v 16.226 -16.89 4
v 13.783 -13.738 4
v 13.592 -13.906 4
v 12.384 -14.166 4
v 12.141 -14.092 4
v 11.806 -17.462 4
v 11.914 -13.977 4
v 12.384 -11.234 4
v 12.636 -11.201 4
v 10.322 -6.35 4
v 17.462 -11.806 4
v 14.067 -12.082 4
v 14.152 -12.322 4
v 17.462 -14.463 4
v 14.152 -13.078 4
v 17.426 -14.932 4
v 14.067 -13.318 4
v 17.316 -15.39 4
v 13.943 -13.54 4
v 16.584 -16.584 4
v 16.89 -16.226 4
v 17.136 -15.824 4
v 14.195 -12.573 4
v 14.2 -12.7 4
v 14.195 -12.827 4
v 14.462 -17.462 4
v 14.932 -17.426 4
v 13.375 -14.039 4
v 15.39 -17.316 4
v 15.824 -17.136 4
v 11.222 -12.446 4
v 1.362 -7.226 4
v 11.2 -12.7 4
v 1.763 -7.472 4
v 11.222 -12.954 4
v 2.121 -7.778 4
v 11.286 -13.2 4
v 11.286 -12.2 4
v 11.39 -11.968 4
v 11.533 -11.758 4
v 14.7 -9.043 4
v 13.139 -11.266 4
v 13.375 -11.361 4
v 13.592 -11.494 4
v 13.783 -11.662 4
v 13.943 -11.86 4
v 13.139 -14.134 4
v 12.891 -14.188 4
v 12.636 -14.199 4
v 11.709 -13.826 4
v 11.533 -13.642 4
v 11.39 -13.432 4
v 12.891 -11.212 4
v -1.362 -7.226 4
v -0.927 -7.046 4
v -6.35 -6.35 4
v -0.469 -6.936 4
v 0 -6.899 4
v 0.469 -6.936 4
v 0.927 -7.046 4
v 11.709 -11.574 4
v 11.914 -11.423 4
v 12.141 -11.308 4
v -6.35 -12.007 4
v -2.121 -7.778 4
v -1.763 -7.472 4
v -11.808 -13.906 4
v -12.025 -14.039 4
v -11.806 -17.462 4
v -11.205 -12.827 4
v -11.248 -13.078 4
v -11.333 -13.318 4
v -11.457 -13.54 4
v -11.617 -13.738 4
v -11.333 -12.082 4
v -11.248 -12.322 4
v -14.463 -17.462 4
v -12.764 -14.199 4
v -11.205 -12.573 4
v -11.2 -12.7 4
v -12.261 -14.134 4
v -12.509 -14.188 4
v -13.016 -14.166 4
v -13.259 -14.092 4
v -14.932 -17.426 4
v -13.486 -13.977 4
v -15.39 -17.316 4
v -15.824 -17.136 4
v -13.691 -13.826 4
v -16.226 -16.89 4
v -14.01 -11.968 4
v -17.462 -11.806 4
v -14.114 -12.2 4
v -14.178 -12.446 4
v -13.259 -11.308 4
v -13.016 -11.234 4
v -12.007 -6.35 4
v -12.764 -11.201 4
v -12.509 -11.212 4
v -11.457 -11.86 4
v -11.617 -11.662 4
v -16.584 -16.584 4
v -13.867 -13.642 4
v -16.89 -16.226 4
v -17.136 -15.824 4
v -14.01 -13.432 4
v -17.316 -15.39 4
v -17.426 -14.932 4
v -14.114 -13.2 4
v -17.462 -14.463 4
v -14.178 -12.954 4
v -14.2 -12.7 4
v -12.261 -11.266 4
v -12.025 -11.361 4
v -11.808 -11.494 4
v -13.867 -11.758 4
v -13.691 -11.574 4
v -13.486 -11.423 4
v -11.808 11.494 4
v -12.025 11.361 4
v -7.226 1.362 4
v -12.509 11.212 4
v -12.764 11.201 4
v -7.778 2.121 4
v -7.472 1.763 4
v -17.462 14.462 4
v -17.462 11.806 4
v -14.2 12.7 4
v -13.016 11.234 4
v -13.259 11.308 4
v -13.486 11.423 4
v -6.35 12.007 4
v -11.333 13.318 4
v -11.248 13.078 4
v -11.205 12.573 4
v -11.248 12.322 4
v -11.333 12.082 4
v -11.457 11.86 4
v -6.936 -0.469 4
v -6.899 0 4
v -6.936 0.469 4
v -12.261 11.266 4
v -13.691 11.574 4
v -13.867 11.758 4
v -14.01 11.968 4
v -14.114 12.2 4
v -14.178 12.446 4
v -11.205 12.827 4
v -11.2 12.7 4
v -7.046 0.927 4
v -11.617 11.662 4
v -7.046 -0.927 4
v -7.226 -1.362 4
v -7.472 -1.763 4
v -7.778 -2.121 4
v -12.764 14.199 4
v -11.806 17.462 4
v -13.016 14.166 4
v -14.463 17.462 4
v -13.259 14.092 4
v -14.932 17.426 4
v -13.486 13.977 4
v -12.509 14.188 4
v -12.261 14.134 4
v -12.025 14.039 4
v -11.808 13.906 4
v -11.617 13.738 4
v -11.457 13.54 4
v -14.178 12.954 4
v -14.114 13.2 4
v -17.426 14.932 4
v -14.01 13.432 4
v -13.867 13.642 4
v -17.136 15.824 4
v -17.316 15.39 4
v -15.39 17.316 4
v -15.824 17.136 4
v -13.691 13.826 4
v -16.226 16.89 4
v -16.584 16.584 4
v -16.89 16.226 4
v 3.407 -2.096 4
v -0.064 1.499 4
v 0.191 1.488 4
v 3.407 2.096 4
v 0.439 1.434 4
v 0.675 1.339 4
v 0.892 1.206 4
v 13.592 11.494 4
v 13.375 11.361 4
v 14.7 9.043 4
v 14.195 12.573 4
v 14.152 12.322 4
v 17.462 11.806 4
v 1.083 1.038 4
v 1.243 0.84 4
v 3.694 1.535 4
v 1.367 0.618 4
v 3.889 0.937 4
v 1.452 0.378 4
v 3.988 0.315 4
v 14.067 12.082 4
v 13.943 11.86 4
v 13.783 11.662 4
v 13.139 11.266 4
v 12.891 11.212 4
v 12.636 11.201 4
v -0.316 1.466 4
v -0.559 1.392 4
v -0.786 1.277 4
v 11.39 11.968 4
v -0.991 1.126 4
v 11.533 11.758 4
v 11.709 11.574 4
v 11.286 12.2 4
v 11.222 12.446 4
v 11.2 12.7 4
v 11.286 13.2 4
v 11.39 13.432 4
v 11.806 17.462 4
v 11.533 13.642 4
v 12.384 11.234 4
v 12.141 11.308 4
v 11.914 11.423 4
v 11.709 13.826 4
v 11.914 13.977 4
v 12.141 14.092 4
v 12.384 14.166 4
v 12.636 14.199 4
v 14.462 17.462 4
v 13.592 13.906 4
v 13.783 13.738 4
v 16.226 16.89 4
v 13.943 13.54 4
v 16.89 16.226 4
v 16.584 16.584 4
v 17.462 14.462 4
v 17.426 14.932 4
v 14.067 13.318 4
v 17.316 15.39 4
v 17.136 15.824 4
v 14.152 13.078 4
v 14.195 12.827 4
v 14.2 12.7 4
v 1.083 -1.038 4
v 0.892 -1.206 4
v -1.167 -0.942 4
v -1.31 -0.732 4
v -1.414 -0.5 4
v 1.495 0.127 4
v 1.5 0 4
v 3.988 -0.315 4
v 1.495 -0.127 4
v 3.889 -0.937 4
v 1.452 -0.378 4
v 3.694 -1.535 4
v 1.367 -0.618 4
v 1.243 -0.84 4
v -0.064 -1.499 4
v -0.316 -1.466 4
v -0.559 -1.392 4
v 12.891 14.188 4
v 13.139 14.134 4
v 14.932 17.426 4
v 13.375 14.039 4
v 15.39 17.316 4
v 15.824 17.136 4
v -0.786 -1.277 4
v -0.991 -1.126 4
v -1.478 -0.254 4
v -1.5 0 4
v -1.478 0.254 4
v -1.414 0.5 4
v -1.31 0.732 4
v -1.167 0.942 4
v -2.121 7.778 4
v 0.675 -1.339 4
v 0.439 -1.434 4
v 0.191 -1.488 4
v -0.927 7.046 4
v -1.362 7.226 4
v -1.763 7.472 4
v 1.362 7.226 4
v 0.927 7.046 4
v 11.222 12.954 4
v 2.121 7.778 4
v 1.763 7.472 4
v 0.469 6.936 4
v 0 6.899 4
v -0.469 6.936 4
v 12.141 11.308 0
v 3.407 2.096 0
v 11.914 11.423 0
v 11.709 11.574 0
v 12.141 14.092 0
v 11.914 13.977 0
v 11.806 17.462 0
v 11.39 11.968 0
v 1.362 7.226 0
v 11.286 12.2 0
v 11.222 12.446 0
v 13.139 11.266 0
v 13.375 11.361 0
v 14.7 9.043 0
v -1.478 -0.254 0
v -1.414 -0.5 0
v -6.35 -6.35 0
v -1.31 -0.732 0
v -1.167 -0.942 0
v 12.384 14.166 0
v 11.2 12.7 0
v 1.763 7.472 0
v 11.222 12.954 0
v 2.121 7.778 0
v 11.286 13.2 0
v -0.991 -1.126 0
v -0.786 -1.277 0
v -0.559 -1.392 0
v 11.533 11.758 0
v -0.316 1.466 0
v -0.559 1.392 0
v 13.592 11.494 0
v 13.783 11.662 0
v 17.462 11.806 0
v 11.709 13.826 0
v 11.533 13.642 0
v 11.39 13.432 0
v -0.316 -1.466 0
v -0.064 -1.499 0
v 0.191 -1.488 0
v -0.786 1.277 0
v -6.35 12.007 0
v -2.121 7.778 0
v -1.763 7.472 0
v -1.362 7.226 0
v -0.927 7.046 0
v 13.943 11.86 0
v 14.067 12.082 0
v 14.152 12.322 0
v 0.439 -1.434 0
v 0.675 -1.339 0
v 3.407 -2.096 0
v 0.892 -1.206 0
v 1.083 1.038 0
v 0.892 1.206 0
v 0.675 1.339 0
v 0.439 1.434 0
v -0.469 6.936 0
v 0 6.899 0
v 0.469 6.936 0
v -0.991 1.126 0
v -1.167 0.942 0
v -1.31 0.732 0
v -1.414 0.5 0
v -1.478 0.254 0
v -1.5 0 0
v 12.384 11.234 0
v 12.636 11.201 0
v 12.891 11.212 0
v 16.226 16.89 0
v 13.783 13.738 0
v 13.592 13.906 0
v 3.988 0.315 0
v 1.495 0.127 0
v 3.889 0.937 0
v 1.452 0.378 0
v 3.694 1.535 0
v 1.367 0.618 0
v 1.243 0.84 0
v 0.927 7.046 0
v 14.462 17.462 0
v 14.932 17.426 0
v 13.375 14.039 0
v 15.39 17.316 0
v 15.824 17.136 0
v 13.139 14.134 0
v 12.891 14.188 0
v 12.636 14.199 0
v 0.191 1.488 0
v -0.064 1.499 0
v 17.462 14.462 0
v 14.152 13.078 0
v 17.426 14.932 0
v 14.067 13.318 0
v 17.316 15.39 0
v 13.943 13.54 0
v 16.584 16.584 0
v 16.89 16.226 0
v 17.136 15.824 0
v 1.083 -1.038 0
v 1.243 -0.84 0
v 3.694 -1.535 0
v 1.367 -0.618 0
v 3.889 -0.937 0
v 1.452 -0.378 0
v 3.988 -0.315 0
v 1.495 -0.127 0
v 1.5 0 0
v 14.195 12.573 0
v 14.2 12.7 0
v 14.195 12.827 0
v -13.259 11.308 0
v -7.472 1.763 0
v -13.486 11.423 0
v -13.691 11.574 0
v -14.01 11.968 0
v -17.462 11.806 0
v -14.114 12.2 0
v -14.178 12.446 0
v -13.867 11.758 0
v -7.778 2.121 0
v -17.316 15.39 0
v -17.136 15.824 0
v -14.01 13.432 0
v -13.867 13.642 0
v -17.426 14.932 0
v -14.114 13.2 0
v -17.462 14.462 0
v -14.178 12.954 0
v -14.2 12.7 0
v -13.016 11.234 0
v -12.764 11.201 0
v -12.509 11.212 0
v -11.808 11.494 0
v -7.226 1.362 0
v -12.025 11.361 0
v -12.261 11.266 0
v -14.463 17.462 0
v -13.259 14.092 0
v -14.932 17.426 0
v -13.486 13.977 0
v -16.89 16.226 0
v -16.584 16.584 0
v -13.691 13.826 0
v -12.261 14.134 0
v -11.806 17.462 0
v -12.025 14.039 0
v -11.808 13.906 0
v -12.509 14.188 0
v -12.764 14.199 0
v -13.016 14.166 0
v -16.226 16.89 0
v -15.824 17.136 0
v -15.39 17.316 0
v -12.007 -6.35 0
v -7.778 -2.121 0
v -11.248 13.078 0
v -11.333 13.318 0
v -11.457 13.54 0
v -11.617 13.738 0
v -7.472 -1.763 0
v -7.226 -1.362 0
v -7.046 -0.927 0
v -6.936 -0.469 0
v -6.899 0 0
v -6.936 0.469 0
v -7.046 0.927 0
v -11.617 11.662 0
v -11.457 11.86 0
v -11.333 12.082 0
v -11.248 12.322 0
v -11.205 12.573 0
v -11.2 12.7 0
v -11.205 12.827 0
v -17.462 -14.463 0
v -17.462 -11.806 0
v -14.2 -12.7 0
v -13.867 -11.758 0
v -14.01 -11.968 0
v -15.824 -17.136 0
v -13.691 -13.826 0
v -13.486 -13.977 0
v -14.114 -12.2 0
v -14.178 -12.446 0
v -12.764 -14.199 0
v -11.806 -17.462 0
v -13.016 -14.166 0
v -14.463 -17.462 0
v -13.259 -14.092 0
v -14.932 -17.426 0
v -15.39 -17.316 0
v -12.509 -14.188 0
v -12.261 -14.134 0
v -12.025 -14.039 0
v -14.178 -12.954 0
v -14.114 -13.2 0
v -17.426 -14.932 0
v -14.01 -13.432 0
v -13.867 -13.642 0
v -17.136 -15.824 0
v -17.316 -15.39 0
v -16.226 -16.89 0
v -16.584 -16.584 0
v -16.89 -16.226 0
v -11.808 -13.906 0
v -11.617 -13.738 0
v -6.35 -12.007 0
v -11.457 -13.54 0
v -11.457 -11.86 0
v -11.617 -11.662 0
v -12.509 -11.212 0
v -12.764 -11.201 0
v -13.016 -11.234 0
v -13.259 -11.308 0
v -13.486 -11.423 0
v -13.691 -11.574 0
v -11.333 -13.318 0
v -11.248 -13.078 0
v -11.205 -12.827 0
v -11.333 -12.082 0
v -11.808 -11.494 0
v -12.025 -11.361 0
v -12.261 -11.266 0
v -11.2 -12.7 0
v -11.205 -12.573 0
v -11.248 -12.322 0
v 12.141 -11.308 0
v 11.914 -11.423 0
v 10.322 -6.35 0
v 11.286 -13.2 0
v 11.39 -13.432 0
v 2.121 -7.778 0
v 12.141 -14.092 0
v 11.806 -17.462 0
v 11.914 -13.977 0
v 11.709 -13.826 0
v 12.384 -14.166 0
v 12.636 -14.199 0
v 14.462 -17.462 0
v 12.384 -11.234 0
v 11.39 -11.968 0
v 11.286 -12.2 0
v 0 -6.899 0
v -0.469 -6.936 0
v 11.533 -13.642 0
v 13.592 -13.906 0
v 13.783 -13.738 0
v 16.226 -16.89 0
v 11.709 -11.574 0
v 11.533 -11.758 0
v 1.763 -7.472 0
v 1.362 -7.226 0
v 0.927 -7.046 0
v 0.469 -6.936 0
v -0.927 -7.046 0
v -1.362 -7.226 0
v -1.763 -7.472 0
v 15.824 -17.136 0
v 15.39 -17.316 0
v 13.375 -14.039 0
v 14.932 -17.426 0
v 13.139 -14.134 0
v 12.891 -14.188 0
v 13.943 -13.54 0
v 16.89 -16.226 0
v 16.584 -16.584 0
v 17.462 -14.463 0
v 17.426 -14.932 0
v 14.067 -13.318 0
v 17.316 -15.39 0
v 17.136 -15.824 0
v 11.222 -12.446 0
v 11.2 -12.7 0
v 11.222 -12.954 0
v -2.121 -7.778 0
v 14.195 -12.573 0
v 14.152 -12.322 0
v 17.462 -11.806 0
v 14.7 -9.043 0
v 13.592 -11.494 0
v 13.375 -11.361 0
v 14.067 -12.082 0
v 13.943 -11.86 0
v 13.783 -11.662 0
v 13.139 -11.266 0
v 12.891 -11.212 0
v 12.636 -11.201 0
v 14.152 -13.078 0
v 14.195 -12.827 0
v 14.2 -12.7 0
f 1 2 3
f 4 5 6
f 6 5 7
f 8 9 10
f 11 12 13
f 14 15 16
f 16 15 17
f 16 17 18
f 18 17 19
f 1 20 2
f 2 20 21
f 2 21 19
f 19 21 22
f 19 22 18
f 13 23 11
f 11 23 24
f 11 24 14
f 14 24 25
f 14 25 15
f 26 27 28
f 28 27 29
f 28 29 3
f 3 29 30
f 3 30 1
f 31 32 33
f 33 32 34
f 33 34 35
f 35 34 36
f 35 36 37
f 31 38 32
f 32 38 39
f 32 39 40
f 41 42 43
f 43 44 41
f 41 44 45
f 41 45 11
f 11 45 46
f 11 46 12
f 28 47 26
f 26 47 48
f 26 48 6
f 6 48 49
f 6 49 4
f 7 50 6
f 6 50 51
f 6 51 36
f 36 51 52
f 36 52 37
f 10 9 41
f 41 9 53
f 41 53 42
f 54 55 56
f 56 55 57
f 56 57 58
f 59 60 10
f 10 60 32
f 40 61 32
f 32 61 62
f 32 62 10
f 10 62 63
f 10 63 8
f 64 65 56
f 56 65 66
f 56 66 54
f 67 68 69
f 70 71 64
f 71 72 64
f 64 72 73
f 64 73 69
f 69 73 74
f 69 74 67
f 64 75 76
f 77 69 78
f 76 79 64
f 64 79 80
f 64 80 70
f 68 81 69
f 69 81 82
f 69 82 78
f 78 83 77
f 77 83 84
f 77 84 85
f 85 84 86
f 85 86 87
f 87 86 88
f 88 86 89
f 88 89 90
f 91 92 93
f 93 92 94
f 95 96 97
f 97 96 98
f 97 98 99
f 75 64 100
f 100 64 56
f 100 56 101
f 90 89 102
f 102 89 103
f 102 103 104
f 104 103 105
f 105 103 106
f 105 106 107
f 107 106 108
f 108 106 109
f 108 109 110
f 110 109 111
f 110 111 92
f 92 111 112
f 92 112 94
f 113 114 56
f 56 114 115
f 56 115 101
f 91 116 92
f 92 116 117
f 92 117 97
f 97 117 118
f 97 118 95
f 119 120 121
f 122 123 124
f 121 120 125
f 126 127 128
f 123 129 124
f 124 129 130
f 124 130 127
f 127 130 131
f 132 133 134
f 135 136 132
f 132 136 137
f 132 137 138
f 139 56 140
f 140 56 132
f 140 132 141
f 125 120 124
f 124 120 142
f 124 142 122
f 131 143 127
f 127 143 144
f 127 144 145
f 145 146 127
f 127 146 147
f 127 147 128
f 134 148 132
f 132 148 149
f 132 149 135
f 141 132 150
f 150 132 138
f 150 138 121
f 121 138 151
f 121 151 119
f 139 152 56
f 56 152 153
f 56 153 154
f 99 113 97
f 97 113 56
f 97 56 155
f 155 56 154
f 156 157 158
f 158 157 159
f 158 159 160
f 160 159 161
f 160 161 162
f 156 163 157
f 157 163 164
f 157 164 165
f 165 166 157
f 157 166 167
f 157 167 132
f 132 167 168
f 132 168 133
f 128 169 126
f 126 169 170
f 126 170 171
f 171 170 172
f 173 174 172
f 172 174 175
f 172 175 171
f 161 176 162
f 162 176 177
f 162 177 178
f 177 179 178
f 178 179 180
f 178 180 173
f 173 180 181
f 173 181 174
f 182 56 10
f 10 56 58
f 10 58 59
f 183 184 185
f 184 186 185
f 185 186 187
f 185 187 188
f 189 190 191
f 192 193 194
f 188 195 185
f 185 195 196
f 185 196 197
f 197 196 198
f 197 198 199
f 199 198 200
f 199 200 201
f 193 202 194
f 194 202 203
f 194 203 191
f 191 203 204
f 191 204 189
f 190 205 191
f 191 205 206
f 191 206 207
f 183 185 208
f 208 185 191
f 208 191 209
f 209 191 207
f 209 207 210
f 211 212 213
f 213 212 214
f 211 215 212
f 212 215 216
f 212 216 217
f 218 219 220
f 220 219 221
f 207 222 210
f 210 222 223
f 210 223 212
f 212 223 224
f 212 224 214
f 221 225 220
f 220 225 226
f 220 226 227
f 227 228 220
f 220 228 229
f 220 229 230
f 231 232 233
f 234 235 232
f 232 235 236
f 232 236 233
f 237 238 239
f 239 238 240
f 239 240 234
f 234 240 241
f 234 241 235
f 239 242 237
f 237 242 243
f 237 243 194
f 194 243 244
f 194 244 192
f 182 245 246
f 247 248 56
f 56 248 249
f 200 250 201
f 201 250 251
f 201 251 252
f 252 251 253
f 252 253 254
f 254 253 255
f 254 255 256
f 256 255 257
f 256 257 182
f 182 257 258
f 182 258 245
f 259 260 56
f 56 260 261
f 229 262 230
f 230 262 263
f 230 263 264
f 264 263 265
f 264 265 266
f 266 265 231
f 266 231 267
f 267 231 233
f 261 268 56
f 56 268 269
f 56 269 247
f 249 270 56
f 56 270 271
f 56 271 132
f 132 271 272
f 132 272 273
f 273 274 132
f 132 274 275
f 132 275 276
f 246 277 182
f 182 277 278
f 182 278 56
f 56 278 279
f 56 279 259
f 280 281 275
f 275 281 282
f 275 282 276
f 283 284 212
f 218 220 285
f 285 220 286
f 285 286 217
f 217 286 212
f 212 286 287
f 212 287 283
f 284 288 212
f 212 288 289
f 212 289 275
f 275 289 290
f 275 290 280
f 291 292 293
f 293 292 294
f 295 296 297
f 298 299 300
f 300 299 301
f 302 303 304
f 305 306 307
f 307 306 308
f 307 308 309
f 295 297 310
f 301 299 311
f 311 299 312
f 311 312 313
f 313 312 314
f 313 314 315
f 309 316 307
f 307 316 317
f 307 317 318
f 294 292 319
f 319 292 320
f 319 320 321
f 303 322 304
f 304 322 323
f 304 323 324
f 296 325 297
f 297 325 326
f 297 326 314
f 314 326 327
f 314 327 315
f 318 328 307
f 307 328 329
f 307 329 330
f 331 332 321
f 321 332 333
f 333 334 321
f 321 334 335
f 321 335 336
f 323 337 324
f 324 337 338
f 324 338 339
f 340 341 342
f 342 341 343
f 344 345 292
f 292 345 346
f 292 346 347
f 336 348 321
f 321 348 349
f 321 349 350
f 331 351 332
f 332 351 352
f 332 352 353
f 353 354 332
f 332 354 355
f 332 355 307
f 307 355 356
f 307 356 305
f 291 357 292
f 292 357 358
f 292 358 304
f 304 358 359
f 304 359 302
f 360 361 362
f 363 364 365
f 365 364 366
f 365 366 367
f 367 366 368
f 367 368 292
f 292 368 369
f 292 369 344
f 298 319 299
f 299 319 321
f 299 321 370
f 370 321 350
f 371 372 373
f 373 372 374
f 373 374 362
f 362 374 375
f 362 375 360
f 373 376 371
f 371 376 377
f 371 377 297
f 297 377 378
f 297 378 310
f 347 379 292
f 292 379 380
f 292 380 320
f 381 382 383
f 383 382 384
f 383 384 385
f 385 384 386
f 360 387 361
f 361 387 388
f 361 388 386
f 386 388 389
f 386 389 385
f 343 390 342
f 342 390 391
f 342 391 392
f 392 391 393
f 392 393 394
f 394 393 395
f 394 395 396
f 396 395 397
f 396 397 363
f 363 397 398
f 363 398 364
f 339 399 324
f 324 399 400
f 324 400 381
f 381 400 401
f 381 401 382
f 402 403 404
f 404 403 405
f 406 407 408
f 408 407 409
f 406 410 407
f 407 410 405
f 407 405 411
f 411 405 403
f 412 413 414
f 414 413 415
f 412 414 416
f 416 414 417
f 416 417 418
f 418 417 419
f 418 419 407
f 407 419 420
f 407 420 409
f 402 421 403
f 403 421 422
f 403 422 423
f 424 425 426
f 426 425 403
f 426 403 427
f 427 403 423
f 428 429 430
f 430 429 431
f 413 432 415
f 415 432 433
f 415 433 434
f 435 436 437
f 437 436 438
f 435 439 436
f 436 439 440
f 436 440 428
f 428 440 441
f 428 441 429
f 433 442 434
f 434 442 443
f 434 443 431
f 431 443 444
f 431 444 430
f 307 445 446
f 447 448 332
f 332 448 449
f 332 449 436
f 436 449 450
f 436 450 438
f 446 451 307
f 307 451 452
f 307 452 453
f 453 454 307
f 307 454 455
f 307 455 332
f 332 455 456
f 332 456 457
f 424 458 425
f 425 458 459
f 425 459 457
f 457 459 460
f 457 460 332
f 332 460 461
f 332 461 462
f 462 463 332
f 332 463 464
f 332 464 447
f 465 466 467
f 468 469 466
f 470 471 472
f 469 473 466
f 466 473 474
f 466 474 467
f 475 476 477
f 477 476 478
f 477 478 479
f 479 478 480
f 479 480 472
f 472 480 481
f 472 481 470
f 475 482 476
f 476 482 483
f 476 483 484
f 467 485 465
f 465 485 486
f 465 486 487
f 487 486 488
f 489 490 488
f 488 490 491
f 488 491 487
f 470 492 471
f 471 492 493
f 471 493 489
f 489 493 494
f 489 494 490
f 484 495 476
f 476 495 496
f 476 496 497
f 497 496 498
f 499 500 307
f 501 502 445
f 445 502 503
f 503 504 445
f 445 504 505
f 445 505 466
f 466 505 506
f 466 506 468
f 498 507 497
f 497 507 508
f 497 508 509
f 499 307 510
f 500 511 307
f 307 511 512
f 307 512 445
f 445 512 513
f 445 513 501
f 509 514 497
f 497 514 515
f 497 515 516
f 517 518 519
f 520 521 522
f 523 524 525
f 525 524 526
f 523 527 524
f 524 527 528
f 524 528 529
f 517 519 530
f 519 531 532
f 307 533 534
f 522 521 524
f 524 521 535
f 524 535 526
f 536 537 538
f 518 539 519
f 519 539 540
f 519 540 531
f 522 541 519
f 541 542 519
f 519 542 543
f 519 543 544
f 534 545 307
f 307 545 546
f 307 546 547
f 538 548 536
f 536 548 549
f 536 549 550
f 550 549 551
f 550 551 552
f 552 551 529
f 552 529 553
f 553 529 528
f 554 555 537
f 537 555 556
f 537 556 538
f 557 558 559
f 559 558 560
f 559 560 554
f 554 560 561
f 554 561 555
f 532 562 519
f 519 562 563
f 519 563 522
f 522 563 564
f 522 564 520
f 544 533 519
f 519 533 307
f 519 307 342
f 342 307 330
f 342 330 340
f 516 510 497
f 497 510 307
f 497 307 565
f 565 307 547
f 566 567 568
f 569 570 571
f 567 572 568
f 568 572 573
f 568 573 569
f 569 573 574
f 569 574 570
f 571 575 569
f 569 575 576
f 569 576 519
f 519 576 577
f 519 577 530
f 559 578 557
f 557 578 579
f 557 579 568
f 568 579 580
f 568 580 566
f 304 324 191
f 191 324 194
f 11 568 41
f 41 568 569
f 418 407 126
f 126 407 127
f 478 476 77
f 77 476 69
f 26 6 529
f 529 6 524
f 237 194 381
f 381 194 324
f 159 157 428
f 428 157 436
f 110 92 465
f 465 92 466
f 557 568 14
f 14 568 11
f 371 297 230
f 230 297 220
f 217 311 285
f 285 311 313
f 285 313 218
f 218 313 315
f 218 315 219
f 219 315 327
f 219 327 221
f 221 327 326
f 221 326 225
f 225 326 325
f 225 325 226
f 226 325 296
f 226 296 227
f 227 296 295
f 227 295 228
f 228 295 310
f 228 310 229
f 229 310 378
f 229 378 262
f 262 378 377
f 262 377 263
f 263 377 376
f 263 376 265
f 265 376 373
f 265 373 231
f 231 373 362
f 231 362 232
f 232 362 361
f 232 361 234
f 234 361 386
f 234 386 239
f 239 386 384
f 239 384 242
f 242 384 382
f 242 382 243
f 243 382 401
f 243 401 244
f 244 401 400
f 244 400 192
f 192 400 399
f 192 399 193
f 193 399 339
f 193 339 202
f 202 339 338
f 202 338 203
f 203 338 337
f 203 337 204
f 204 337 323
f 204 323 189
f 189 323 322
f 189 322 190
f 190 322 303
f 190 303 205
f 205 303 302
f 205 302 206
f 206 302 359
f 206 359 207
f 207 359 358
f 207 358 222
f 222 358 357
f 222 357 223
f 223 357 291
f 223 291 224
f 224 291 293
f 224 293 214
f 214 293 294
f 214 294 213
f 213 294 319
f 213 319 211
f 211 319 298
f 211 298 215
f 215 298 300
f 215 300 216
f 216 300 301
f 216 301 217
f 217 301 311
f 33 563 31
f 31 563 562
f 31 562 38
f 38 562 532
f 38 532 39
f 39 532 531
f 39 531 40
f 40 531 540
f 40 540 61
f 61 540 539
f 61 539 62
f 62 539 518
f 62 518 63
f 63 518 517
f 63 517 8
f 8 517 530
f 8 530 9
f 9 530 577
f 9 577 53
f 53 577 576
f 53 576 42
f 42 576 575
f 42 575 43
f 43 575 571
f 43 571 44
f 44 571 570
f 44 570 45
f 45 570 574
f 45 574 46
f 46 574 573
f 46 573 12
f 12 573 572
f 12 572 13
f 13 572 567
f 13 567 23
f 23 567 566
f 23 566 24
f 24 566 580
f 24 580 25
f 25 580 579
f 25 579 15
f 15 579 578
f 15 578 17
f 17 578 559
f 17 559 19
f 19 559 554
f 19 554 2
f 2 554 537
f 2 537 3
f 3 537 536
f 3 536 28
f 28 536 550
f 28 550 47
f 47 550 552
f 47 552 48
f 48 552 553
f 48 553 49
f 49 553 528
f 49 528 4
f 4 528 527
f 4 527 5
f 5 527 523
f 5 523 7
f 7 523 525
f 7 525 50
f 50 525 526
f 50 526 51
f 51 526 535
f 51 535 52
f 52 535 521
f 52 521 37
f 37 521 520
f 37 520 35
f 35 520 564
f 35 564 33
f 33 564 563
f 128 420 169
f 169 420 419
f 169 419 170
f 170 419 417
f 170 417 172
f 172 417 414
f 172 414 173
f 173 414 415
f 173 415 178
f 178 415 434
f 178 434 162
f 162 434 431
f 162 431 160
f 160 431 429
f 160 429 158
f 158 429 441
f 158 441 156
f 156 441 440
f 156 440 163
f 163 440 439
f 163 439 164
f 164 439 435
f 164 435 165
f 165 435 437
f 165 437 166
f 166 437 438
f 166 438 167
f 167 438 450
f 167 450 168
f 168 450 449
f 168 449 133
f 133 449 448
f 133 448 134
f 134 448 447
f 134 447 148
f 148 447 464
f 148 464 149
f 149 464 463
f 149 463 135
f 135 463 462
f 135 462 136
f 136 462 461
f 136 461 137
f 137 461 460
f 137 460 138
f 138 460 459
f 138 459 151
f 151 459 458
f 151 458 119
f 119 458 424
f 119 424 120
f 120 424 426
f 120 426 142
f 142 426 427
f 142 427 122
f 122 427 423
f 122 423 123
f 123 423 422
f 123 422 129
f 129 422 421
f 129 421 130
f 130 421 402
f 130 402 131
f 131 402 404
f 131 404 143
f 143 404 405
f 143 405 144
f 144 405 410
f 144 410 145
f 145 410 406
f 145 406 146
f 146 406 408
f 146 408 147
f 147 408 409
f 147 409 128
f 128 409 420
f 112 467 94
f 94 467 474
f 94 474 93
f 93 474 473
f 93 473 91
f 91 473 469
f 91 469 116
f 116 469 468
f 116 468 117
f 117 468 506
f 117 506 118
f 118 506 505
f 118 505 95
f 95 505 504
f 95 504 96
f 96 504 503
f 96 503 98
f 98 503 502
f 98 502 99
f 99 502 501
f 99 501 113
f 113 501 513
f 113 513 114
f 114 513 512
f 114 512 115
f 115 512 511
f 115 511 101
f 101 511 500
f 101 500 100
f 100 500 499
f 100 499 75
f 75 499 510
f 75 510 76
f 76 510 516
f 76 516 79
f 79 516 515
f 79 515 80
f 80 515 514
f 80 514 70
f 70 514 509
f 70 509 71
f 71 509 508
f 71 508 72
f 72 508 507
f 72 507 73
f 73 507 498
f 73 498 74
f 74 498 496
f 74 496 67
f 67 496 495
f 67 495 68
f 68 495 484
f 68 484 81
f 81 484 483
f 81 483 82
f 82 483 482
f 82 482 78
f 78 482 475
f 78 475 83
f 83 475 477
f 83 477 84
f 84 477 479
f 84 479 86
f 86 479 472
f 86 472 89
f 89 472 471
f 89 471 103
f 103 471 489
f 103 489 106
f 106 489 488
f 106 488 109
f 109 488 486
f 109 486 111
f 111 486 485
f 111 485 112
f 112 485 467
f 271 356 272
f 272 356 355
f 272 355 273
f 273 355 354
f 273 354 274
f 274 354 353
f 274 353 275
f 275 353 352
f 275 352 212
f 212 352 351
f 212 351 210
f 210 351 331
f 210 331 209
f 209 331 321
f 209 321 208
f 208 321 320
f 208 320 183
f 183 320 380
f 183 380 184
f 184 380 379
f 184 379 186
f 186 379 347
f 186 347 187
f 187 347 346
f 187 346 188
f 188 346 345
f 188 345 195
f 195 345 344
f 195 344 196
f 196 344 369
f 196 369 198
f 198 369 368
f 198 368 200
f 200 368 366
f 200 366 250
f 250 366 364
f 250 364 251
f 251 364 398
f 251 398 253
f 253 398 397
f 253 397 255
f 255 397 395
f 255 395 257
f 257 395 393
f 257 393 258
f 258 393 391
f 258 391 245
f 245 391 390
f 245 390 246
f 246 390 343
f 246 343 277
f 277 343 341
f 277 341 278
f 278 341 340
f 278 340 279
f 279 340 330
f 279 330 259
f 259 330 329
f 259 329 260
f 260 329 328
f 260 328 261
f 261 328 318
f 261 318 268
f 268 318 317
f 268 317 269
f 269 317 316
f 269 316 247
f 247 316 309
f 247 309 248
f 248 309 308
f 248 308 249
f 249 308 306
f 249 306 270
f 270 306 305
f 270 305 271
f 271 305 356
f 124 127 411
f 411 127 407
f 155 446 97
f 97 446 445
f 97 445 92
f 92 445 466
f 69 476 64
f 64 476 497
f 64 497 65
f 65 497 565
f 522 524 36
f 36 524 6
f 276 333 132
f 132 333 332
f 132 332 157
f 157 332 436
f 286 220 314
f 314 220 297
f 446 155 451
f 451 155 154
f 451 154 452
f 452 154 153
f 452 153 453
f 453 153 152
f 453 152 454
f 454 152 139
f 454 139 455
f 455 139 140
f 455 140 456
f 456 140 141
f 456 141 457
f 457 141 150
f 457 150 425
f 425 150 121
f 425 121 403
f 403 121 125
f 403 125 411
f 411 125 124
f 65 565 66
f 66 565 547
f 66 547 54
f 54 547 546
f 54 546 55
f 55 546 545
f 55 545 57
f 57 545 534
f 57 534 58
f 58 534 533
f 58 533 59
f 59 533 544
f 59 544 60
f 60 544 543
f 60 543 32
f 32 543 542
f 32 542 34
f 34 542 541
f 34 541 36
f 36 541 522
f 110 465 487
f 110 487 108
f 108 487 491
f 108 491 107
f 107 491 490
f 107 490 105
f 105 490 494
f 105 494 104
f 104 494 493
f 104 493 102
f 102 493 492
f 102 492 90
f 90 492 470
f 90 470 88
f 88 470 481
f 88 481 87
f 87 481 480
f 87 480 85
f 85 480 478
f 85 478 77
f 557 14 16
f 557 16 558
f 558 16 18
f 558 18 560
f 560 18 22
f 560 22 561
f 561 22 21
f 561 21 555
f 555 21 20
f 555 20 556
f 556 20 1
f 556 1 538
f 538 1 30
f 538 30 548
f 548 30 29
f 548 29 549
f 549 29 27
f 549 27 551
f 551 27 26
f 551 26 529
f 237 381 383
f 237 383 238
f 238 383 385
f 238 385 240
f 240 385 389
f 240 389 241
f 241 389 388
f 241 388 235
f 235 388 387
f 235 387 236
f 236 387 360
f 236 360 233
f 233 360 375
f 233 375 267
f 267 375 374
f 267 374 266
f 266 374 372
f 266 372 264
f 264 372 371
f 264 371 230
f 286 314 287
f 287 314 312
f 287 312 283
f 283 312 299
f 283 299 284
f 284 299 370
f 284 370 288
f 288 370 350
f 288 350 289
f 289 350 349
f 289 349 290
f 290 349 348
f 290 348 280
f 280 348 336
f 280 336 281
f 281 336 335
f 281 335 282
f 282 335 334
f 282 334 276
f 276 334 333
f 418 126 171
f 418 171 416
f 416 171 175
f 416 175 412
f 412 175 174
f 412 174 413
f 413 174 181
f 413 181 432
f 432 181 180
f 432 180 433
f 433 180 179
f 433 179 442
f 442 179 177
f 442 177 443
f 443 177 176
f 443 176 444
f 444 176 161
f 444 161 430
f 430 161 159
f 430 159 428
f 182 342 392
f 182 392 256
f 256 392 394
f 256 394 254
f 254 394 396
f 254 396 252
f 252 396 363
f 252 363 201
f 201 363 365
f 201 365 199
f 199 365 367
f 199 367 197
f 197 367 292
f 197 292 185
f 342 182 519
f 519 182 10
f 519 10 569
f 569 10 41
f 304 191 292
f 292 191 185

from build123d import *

# Parameters (mm, degrees)
SKETCH1_W           = 34.925
SKETCH1_H           = 34.925
SKETCH1_R           = 1.5
BOSS_EXTRUDE1_DEPTH = 4
CUT_EXTRUDE1_DEPTH  = 5.08
FILLET1_R           = 3
CUT_EXTRUDE2_DEPTH  = 5.08


with BuildPart() as part:
    # Sketch1 → Boss-Extrude1 (new body)
    with BuildSketch(Plane.XY):
        Rectangle(SKETCH1_W, SKETCH1_H)
        with Locations((-12.7, 12.7)):
            Circle(SKETCH1_R, mode=Mode.SUBTRACT)
        with Locations((12.7, 12.7)):
            Circle(SKETCH1_R, mode=Mode.SUBTRACT)
        with Locations((-12.7, -12.7)):
            Circle(SKETCH1_R, mode=Mode.SUBTRACT)
        with Locations((12.7, -12.7)):
            Circle(SKETCH1_R, mode=Mode.SUBTRACT)
        Circle(SKETCH1_R, mode=Mode.SUBTRACT)
    extrude(amount=BOSS_EXTRUDE1_DEPTH)

    # Sketch2 → Cut-Extrude1 (cut)
    with BuildSketch(Plane.XY.offset(4)):
        Polygon((-5.656854249, 0), (-17.4625, 11.805645751), (-17.4625, -11.805645751), align=None)
        Polygon((-11.805645751, 17.4625), (0, 5.656854249), (11.805645751, 17.4625), align=None)
        Polygon((17.4625, 11.805645751), (5.656854249, 0), (17.4625, -11.805645751), align=None)
        Polygon((11.805645751, -17.4625), (0, -5.656854249), (-11.805645751, -17.4625), align=None)
    extrude(amount=-CUT_EXTRUDE1_DEPTH, mode=Mode.SUBTRACT)

    # Fillet1
    fillet1_edges = [part.edges().sort_by_distance(p)[0] for p in [
        (-17.4625, 17.4625, 2),
        (17.4625, 17.4625, 2),
        (17.4625, -17.4625, 2),
        (-17.4625, -17.4625, 2),
        (5.656854249, 0, 2),
        (0, 5.656854249, 2),
        (0, -5.656854249, 2),
        (-5.656854249, 0, 2),
    ]]
    fillet(fillet1_edges, radius=FILLET1_R)

    # Sketch3 → Cut-Extrude2 (cut)
    with BuildSketch(Plane(origin=(0, 0, 0), x_dir=(-1, 0, 0), z_dir=(0, 0, -1))):
        with BuildLine():
            Line((-14.7, -9.043145751), (-3.406944413, -2.095884006))
            ThreePointArc((-3.406944413, -2.095884006), (-4, 0), (-3.406944413, 2.095884006))
            Line((-3.406944413, 2.095884006), (-14.7, 9.043145751))
            Line((-14.7, 9.043145751), (-7.778174593, 2.121320344))
            ThreePointArc((-7.778174593, 2.121320344), (-6.899494937, 0), (-7.778174593, -2.121320344))
            Line((-7.778174593, -2.121320344), (-14.7, -9.043145751))
        make_face()
    extrude(amount=-CUT_EXTRUDE2_DEPTH, mode=Mode.SUBTRACT)


solid = part.part
